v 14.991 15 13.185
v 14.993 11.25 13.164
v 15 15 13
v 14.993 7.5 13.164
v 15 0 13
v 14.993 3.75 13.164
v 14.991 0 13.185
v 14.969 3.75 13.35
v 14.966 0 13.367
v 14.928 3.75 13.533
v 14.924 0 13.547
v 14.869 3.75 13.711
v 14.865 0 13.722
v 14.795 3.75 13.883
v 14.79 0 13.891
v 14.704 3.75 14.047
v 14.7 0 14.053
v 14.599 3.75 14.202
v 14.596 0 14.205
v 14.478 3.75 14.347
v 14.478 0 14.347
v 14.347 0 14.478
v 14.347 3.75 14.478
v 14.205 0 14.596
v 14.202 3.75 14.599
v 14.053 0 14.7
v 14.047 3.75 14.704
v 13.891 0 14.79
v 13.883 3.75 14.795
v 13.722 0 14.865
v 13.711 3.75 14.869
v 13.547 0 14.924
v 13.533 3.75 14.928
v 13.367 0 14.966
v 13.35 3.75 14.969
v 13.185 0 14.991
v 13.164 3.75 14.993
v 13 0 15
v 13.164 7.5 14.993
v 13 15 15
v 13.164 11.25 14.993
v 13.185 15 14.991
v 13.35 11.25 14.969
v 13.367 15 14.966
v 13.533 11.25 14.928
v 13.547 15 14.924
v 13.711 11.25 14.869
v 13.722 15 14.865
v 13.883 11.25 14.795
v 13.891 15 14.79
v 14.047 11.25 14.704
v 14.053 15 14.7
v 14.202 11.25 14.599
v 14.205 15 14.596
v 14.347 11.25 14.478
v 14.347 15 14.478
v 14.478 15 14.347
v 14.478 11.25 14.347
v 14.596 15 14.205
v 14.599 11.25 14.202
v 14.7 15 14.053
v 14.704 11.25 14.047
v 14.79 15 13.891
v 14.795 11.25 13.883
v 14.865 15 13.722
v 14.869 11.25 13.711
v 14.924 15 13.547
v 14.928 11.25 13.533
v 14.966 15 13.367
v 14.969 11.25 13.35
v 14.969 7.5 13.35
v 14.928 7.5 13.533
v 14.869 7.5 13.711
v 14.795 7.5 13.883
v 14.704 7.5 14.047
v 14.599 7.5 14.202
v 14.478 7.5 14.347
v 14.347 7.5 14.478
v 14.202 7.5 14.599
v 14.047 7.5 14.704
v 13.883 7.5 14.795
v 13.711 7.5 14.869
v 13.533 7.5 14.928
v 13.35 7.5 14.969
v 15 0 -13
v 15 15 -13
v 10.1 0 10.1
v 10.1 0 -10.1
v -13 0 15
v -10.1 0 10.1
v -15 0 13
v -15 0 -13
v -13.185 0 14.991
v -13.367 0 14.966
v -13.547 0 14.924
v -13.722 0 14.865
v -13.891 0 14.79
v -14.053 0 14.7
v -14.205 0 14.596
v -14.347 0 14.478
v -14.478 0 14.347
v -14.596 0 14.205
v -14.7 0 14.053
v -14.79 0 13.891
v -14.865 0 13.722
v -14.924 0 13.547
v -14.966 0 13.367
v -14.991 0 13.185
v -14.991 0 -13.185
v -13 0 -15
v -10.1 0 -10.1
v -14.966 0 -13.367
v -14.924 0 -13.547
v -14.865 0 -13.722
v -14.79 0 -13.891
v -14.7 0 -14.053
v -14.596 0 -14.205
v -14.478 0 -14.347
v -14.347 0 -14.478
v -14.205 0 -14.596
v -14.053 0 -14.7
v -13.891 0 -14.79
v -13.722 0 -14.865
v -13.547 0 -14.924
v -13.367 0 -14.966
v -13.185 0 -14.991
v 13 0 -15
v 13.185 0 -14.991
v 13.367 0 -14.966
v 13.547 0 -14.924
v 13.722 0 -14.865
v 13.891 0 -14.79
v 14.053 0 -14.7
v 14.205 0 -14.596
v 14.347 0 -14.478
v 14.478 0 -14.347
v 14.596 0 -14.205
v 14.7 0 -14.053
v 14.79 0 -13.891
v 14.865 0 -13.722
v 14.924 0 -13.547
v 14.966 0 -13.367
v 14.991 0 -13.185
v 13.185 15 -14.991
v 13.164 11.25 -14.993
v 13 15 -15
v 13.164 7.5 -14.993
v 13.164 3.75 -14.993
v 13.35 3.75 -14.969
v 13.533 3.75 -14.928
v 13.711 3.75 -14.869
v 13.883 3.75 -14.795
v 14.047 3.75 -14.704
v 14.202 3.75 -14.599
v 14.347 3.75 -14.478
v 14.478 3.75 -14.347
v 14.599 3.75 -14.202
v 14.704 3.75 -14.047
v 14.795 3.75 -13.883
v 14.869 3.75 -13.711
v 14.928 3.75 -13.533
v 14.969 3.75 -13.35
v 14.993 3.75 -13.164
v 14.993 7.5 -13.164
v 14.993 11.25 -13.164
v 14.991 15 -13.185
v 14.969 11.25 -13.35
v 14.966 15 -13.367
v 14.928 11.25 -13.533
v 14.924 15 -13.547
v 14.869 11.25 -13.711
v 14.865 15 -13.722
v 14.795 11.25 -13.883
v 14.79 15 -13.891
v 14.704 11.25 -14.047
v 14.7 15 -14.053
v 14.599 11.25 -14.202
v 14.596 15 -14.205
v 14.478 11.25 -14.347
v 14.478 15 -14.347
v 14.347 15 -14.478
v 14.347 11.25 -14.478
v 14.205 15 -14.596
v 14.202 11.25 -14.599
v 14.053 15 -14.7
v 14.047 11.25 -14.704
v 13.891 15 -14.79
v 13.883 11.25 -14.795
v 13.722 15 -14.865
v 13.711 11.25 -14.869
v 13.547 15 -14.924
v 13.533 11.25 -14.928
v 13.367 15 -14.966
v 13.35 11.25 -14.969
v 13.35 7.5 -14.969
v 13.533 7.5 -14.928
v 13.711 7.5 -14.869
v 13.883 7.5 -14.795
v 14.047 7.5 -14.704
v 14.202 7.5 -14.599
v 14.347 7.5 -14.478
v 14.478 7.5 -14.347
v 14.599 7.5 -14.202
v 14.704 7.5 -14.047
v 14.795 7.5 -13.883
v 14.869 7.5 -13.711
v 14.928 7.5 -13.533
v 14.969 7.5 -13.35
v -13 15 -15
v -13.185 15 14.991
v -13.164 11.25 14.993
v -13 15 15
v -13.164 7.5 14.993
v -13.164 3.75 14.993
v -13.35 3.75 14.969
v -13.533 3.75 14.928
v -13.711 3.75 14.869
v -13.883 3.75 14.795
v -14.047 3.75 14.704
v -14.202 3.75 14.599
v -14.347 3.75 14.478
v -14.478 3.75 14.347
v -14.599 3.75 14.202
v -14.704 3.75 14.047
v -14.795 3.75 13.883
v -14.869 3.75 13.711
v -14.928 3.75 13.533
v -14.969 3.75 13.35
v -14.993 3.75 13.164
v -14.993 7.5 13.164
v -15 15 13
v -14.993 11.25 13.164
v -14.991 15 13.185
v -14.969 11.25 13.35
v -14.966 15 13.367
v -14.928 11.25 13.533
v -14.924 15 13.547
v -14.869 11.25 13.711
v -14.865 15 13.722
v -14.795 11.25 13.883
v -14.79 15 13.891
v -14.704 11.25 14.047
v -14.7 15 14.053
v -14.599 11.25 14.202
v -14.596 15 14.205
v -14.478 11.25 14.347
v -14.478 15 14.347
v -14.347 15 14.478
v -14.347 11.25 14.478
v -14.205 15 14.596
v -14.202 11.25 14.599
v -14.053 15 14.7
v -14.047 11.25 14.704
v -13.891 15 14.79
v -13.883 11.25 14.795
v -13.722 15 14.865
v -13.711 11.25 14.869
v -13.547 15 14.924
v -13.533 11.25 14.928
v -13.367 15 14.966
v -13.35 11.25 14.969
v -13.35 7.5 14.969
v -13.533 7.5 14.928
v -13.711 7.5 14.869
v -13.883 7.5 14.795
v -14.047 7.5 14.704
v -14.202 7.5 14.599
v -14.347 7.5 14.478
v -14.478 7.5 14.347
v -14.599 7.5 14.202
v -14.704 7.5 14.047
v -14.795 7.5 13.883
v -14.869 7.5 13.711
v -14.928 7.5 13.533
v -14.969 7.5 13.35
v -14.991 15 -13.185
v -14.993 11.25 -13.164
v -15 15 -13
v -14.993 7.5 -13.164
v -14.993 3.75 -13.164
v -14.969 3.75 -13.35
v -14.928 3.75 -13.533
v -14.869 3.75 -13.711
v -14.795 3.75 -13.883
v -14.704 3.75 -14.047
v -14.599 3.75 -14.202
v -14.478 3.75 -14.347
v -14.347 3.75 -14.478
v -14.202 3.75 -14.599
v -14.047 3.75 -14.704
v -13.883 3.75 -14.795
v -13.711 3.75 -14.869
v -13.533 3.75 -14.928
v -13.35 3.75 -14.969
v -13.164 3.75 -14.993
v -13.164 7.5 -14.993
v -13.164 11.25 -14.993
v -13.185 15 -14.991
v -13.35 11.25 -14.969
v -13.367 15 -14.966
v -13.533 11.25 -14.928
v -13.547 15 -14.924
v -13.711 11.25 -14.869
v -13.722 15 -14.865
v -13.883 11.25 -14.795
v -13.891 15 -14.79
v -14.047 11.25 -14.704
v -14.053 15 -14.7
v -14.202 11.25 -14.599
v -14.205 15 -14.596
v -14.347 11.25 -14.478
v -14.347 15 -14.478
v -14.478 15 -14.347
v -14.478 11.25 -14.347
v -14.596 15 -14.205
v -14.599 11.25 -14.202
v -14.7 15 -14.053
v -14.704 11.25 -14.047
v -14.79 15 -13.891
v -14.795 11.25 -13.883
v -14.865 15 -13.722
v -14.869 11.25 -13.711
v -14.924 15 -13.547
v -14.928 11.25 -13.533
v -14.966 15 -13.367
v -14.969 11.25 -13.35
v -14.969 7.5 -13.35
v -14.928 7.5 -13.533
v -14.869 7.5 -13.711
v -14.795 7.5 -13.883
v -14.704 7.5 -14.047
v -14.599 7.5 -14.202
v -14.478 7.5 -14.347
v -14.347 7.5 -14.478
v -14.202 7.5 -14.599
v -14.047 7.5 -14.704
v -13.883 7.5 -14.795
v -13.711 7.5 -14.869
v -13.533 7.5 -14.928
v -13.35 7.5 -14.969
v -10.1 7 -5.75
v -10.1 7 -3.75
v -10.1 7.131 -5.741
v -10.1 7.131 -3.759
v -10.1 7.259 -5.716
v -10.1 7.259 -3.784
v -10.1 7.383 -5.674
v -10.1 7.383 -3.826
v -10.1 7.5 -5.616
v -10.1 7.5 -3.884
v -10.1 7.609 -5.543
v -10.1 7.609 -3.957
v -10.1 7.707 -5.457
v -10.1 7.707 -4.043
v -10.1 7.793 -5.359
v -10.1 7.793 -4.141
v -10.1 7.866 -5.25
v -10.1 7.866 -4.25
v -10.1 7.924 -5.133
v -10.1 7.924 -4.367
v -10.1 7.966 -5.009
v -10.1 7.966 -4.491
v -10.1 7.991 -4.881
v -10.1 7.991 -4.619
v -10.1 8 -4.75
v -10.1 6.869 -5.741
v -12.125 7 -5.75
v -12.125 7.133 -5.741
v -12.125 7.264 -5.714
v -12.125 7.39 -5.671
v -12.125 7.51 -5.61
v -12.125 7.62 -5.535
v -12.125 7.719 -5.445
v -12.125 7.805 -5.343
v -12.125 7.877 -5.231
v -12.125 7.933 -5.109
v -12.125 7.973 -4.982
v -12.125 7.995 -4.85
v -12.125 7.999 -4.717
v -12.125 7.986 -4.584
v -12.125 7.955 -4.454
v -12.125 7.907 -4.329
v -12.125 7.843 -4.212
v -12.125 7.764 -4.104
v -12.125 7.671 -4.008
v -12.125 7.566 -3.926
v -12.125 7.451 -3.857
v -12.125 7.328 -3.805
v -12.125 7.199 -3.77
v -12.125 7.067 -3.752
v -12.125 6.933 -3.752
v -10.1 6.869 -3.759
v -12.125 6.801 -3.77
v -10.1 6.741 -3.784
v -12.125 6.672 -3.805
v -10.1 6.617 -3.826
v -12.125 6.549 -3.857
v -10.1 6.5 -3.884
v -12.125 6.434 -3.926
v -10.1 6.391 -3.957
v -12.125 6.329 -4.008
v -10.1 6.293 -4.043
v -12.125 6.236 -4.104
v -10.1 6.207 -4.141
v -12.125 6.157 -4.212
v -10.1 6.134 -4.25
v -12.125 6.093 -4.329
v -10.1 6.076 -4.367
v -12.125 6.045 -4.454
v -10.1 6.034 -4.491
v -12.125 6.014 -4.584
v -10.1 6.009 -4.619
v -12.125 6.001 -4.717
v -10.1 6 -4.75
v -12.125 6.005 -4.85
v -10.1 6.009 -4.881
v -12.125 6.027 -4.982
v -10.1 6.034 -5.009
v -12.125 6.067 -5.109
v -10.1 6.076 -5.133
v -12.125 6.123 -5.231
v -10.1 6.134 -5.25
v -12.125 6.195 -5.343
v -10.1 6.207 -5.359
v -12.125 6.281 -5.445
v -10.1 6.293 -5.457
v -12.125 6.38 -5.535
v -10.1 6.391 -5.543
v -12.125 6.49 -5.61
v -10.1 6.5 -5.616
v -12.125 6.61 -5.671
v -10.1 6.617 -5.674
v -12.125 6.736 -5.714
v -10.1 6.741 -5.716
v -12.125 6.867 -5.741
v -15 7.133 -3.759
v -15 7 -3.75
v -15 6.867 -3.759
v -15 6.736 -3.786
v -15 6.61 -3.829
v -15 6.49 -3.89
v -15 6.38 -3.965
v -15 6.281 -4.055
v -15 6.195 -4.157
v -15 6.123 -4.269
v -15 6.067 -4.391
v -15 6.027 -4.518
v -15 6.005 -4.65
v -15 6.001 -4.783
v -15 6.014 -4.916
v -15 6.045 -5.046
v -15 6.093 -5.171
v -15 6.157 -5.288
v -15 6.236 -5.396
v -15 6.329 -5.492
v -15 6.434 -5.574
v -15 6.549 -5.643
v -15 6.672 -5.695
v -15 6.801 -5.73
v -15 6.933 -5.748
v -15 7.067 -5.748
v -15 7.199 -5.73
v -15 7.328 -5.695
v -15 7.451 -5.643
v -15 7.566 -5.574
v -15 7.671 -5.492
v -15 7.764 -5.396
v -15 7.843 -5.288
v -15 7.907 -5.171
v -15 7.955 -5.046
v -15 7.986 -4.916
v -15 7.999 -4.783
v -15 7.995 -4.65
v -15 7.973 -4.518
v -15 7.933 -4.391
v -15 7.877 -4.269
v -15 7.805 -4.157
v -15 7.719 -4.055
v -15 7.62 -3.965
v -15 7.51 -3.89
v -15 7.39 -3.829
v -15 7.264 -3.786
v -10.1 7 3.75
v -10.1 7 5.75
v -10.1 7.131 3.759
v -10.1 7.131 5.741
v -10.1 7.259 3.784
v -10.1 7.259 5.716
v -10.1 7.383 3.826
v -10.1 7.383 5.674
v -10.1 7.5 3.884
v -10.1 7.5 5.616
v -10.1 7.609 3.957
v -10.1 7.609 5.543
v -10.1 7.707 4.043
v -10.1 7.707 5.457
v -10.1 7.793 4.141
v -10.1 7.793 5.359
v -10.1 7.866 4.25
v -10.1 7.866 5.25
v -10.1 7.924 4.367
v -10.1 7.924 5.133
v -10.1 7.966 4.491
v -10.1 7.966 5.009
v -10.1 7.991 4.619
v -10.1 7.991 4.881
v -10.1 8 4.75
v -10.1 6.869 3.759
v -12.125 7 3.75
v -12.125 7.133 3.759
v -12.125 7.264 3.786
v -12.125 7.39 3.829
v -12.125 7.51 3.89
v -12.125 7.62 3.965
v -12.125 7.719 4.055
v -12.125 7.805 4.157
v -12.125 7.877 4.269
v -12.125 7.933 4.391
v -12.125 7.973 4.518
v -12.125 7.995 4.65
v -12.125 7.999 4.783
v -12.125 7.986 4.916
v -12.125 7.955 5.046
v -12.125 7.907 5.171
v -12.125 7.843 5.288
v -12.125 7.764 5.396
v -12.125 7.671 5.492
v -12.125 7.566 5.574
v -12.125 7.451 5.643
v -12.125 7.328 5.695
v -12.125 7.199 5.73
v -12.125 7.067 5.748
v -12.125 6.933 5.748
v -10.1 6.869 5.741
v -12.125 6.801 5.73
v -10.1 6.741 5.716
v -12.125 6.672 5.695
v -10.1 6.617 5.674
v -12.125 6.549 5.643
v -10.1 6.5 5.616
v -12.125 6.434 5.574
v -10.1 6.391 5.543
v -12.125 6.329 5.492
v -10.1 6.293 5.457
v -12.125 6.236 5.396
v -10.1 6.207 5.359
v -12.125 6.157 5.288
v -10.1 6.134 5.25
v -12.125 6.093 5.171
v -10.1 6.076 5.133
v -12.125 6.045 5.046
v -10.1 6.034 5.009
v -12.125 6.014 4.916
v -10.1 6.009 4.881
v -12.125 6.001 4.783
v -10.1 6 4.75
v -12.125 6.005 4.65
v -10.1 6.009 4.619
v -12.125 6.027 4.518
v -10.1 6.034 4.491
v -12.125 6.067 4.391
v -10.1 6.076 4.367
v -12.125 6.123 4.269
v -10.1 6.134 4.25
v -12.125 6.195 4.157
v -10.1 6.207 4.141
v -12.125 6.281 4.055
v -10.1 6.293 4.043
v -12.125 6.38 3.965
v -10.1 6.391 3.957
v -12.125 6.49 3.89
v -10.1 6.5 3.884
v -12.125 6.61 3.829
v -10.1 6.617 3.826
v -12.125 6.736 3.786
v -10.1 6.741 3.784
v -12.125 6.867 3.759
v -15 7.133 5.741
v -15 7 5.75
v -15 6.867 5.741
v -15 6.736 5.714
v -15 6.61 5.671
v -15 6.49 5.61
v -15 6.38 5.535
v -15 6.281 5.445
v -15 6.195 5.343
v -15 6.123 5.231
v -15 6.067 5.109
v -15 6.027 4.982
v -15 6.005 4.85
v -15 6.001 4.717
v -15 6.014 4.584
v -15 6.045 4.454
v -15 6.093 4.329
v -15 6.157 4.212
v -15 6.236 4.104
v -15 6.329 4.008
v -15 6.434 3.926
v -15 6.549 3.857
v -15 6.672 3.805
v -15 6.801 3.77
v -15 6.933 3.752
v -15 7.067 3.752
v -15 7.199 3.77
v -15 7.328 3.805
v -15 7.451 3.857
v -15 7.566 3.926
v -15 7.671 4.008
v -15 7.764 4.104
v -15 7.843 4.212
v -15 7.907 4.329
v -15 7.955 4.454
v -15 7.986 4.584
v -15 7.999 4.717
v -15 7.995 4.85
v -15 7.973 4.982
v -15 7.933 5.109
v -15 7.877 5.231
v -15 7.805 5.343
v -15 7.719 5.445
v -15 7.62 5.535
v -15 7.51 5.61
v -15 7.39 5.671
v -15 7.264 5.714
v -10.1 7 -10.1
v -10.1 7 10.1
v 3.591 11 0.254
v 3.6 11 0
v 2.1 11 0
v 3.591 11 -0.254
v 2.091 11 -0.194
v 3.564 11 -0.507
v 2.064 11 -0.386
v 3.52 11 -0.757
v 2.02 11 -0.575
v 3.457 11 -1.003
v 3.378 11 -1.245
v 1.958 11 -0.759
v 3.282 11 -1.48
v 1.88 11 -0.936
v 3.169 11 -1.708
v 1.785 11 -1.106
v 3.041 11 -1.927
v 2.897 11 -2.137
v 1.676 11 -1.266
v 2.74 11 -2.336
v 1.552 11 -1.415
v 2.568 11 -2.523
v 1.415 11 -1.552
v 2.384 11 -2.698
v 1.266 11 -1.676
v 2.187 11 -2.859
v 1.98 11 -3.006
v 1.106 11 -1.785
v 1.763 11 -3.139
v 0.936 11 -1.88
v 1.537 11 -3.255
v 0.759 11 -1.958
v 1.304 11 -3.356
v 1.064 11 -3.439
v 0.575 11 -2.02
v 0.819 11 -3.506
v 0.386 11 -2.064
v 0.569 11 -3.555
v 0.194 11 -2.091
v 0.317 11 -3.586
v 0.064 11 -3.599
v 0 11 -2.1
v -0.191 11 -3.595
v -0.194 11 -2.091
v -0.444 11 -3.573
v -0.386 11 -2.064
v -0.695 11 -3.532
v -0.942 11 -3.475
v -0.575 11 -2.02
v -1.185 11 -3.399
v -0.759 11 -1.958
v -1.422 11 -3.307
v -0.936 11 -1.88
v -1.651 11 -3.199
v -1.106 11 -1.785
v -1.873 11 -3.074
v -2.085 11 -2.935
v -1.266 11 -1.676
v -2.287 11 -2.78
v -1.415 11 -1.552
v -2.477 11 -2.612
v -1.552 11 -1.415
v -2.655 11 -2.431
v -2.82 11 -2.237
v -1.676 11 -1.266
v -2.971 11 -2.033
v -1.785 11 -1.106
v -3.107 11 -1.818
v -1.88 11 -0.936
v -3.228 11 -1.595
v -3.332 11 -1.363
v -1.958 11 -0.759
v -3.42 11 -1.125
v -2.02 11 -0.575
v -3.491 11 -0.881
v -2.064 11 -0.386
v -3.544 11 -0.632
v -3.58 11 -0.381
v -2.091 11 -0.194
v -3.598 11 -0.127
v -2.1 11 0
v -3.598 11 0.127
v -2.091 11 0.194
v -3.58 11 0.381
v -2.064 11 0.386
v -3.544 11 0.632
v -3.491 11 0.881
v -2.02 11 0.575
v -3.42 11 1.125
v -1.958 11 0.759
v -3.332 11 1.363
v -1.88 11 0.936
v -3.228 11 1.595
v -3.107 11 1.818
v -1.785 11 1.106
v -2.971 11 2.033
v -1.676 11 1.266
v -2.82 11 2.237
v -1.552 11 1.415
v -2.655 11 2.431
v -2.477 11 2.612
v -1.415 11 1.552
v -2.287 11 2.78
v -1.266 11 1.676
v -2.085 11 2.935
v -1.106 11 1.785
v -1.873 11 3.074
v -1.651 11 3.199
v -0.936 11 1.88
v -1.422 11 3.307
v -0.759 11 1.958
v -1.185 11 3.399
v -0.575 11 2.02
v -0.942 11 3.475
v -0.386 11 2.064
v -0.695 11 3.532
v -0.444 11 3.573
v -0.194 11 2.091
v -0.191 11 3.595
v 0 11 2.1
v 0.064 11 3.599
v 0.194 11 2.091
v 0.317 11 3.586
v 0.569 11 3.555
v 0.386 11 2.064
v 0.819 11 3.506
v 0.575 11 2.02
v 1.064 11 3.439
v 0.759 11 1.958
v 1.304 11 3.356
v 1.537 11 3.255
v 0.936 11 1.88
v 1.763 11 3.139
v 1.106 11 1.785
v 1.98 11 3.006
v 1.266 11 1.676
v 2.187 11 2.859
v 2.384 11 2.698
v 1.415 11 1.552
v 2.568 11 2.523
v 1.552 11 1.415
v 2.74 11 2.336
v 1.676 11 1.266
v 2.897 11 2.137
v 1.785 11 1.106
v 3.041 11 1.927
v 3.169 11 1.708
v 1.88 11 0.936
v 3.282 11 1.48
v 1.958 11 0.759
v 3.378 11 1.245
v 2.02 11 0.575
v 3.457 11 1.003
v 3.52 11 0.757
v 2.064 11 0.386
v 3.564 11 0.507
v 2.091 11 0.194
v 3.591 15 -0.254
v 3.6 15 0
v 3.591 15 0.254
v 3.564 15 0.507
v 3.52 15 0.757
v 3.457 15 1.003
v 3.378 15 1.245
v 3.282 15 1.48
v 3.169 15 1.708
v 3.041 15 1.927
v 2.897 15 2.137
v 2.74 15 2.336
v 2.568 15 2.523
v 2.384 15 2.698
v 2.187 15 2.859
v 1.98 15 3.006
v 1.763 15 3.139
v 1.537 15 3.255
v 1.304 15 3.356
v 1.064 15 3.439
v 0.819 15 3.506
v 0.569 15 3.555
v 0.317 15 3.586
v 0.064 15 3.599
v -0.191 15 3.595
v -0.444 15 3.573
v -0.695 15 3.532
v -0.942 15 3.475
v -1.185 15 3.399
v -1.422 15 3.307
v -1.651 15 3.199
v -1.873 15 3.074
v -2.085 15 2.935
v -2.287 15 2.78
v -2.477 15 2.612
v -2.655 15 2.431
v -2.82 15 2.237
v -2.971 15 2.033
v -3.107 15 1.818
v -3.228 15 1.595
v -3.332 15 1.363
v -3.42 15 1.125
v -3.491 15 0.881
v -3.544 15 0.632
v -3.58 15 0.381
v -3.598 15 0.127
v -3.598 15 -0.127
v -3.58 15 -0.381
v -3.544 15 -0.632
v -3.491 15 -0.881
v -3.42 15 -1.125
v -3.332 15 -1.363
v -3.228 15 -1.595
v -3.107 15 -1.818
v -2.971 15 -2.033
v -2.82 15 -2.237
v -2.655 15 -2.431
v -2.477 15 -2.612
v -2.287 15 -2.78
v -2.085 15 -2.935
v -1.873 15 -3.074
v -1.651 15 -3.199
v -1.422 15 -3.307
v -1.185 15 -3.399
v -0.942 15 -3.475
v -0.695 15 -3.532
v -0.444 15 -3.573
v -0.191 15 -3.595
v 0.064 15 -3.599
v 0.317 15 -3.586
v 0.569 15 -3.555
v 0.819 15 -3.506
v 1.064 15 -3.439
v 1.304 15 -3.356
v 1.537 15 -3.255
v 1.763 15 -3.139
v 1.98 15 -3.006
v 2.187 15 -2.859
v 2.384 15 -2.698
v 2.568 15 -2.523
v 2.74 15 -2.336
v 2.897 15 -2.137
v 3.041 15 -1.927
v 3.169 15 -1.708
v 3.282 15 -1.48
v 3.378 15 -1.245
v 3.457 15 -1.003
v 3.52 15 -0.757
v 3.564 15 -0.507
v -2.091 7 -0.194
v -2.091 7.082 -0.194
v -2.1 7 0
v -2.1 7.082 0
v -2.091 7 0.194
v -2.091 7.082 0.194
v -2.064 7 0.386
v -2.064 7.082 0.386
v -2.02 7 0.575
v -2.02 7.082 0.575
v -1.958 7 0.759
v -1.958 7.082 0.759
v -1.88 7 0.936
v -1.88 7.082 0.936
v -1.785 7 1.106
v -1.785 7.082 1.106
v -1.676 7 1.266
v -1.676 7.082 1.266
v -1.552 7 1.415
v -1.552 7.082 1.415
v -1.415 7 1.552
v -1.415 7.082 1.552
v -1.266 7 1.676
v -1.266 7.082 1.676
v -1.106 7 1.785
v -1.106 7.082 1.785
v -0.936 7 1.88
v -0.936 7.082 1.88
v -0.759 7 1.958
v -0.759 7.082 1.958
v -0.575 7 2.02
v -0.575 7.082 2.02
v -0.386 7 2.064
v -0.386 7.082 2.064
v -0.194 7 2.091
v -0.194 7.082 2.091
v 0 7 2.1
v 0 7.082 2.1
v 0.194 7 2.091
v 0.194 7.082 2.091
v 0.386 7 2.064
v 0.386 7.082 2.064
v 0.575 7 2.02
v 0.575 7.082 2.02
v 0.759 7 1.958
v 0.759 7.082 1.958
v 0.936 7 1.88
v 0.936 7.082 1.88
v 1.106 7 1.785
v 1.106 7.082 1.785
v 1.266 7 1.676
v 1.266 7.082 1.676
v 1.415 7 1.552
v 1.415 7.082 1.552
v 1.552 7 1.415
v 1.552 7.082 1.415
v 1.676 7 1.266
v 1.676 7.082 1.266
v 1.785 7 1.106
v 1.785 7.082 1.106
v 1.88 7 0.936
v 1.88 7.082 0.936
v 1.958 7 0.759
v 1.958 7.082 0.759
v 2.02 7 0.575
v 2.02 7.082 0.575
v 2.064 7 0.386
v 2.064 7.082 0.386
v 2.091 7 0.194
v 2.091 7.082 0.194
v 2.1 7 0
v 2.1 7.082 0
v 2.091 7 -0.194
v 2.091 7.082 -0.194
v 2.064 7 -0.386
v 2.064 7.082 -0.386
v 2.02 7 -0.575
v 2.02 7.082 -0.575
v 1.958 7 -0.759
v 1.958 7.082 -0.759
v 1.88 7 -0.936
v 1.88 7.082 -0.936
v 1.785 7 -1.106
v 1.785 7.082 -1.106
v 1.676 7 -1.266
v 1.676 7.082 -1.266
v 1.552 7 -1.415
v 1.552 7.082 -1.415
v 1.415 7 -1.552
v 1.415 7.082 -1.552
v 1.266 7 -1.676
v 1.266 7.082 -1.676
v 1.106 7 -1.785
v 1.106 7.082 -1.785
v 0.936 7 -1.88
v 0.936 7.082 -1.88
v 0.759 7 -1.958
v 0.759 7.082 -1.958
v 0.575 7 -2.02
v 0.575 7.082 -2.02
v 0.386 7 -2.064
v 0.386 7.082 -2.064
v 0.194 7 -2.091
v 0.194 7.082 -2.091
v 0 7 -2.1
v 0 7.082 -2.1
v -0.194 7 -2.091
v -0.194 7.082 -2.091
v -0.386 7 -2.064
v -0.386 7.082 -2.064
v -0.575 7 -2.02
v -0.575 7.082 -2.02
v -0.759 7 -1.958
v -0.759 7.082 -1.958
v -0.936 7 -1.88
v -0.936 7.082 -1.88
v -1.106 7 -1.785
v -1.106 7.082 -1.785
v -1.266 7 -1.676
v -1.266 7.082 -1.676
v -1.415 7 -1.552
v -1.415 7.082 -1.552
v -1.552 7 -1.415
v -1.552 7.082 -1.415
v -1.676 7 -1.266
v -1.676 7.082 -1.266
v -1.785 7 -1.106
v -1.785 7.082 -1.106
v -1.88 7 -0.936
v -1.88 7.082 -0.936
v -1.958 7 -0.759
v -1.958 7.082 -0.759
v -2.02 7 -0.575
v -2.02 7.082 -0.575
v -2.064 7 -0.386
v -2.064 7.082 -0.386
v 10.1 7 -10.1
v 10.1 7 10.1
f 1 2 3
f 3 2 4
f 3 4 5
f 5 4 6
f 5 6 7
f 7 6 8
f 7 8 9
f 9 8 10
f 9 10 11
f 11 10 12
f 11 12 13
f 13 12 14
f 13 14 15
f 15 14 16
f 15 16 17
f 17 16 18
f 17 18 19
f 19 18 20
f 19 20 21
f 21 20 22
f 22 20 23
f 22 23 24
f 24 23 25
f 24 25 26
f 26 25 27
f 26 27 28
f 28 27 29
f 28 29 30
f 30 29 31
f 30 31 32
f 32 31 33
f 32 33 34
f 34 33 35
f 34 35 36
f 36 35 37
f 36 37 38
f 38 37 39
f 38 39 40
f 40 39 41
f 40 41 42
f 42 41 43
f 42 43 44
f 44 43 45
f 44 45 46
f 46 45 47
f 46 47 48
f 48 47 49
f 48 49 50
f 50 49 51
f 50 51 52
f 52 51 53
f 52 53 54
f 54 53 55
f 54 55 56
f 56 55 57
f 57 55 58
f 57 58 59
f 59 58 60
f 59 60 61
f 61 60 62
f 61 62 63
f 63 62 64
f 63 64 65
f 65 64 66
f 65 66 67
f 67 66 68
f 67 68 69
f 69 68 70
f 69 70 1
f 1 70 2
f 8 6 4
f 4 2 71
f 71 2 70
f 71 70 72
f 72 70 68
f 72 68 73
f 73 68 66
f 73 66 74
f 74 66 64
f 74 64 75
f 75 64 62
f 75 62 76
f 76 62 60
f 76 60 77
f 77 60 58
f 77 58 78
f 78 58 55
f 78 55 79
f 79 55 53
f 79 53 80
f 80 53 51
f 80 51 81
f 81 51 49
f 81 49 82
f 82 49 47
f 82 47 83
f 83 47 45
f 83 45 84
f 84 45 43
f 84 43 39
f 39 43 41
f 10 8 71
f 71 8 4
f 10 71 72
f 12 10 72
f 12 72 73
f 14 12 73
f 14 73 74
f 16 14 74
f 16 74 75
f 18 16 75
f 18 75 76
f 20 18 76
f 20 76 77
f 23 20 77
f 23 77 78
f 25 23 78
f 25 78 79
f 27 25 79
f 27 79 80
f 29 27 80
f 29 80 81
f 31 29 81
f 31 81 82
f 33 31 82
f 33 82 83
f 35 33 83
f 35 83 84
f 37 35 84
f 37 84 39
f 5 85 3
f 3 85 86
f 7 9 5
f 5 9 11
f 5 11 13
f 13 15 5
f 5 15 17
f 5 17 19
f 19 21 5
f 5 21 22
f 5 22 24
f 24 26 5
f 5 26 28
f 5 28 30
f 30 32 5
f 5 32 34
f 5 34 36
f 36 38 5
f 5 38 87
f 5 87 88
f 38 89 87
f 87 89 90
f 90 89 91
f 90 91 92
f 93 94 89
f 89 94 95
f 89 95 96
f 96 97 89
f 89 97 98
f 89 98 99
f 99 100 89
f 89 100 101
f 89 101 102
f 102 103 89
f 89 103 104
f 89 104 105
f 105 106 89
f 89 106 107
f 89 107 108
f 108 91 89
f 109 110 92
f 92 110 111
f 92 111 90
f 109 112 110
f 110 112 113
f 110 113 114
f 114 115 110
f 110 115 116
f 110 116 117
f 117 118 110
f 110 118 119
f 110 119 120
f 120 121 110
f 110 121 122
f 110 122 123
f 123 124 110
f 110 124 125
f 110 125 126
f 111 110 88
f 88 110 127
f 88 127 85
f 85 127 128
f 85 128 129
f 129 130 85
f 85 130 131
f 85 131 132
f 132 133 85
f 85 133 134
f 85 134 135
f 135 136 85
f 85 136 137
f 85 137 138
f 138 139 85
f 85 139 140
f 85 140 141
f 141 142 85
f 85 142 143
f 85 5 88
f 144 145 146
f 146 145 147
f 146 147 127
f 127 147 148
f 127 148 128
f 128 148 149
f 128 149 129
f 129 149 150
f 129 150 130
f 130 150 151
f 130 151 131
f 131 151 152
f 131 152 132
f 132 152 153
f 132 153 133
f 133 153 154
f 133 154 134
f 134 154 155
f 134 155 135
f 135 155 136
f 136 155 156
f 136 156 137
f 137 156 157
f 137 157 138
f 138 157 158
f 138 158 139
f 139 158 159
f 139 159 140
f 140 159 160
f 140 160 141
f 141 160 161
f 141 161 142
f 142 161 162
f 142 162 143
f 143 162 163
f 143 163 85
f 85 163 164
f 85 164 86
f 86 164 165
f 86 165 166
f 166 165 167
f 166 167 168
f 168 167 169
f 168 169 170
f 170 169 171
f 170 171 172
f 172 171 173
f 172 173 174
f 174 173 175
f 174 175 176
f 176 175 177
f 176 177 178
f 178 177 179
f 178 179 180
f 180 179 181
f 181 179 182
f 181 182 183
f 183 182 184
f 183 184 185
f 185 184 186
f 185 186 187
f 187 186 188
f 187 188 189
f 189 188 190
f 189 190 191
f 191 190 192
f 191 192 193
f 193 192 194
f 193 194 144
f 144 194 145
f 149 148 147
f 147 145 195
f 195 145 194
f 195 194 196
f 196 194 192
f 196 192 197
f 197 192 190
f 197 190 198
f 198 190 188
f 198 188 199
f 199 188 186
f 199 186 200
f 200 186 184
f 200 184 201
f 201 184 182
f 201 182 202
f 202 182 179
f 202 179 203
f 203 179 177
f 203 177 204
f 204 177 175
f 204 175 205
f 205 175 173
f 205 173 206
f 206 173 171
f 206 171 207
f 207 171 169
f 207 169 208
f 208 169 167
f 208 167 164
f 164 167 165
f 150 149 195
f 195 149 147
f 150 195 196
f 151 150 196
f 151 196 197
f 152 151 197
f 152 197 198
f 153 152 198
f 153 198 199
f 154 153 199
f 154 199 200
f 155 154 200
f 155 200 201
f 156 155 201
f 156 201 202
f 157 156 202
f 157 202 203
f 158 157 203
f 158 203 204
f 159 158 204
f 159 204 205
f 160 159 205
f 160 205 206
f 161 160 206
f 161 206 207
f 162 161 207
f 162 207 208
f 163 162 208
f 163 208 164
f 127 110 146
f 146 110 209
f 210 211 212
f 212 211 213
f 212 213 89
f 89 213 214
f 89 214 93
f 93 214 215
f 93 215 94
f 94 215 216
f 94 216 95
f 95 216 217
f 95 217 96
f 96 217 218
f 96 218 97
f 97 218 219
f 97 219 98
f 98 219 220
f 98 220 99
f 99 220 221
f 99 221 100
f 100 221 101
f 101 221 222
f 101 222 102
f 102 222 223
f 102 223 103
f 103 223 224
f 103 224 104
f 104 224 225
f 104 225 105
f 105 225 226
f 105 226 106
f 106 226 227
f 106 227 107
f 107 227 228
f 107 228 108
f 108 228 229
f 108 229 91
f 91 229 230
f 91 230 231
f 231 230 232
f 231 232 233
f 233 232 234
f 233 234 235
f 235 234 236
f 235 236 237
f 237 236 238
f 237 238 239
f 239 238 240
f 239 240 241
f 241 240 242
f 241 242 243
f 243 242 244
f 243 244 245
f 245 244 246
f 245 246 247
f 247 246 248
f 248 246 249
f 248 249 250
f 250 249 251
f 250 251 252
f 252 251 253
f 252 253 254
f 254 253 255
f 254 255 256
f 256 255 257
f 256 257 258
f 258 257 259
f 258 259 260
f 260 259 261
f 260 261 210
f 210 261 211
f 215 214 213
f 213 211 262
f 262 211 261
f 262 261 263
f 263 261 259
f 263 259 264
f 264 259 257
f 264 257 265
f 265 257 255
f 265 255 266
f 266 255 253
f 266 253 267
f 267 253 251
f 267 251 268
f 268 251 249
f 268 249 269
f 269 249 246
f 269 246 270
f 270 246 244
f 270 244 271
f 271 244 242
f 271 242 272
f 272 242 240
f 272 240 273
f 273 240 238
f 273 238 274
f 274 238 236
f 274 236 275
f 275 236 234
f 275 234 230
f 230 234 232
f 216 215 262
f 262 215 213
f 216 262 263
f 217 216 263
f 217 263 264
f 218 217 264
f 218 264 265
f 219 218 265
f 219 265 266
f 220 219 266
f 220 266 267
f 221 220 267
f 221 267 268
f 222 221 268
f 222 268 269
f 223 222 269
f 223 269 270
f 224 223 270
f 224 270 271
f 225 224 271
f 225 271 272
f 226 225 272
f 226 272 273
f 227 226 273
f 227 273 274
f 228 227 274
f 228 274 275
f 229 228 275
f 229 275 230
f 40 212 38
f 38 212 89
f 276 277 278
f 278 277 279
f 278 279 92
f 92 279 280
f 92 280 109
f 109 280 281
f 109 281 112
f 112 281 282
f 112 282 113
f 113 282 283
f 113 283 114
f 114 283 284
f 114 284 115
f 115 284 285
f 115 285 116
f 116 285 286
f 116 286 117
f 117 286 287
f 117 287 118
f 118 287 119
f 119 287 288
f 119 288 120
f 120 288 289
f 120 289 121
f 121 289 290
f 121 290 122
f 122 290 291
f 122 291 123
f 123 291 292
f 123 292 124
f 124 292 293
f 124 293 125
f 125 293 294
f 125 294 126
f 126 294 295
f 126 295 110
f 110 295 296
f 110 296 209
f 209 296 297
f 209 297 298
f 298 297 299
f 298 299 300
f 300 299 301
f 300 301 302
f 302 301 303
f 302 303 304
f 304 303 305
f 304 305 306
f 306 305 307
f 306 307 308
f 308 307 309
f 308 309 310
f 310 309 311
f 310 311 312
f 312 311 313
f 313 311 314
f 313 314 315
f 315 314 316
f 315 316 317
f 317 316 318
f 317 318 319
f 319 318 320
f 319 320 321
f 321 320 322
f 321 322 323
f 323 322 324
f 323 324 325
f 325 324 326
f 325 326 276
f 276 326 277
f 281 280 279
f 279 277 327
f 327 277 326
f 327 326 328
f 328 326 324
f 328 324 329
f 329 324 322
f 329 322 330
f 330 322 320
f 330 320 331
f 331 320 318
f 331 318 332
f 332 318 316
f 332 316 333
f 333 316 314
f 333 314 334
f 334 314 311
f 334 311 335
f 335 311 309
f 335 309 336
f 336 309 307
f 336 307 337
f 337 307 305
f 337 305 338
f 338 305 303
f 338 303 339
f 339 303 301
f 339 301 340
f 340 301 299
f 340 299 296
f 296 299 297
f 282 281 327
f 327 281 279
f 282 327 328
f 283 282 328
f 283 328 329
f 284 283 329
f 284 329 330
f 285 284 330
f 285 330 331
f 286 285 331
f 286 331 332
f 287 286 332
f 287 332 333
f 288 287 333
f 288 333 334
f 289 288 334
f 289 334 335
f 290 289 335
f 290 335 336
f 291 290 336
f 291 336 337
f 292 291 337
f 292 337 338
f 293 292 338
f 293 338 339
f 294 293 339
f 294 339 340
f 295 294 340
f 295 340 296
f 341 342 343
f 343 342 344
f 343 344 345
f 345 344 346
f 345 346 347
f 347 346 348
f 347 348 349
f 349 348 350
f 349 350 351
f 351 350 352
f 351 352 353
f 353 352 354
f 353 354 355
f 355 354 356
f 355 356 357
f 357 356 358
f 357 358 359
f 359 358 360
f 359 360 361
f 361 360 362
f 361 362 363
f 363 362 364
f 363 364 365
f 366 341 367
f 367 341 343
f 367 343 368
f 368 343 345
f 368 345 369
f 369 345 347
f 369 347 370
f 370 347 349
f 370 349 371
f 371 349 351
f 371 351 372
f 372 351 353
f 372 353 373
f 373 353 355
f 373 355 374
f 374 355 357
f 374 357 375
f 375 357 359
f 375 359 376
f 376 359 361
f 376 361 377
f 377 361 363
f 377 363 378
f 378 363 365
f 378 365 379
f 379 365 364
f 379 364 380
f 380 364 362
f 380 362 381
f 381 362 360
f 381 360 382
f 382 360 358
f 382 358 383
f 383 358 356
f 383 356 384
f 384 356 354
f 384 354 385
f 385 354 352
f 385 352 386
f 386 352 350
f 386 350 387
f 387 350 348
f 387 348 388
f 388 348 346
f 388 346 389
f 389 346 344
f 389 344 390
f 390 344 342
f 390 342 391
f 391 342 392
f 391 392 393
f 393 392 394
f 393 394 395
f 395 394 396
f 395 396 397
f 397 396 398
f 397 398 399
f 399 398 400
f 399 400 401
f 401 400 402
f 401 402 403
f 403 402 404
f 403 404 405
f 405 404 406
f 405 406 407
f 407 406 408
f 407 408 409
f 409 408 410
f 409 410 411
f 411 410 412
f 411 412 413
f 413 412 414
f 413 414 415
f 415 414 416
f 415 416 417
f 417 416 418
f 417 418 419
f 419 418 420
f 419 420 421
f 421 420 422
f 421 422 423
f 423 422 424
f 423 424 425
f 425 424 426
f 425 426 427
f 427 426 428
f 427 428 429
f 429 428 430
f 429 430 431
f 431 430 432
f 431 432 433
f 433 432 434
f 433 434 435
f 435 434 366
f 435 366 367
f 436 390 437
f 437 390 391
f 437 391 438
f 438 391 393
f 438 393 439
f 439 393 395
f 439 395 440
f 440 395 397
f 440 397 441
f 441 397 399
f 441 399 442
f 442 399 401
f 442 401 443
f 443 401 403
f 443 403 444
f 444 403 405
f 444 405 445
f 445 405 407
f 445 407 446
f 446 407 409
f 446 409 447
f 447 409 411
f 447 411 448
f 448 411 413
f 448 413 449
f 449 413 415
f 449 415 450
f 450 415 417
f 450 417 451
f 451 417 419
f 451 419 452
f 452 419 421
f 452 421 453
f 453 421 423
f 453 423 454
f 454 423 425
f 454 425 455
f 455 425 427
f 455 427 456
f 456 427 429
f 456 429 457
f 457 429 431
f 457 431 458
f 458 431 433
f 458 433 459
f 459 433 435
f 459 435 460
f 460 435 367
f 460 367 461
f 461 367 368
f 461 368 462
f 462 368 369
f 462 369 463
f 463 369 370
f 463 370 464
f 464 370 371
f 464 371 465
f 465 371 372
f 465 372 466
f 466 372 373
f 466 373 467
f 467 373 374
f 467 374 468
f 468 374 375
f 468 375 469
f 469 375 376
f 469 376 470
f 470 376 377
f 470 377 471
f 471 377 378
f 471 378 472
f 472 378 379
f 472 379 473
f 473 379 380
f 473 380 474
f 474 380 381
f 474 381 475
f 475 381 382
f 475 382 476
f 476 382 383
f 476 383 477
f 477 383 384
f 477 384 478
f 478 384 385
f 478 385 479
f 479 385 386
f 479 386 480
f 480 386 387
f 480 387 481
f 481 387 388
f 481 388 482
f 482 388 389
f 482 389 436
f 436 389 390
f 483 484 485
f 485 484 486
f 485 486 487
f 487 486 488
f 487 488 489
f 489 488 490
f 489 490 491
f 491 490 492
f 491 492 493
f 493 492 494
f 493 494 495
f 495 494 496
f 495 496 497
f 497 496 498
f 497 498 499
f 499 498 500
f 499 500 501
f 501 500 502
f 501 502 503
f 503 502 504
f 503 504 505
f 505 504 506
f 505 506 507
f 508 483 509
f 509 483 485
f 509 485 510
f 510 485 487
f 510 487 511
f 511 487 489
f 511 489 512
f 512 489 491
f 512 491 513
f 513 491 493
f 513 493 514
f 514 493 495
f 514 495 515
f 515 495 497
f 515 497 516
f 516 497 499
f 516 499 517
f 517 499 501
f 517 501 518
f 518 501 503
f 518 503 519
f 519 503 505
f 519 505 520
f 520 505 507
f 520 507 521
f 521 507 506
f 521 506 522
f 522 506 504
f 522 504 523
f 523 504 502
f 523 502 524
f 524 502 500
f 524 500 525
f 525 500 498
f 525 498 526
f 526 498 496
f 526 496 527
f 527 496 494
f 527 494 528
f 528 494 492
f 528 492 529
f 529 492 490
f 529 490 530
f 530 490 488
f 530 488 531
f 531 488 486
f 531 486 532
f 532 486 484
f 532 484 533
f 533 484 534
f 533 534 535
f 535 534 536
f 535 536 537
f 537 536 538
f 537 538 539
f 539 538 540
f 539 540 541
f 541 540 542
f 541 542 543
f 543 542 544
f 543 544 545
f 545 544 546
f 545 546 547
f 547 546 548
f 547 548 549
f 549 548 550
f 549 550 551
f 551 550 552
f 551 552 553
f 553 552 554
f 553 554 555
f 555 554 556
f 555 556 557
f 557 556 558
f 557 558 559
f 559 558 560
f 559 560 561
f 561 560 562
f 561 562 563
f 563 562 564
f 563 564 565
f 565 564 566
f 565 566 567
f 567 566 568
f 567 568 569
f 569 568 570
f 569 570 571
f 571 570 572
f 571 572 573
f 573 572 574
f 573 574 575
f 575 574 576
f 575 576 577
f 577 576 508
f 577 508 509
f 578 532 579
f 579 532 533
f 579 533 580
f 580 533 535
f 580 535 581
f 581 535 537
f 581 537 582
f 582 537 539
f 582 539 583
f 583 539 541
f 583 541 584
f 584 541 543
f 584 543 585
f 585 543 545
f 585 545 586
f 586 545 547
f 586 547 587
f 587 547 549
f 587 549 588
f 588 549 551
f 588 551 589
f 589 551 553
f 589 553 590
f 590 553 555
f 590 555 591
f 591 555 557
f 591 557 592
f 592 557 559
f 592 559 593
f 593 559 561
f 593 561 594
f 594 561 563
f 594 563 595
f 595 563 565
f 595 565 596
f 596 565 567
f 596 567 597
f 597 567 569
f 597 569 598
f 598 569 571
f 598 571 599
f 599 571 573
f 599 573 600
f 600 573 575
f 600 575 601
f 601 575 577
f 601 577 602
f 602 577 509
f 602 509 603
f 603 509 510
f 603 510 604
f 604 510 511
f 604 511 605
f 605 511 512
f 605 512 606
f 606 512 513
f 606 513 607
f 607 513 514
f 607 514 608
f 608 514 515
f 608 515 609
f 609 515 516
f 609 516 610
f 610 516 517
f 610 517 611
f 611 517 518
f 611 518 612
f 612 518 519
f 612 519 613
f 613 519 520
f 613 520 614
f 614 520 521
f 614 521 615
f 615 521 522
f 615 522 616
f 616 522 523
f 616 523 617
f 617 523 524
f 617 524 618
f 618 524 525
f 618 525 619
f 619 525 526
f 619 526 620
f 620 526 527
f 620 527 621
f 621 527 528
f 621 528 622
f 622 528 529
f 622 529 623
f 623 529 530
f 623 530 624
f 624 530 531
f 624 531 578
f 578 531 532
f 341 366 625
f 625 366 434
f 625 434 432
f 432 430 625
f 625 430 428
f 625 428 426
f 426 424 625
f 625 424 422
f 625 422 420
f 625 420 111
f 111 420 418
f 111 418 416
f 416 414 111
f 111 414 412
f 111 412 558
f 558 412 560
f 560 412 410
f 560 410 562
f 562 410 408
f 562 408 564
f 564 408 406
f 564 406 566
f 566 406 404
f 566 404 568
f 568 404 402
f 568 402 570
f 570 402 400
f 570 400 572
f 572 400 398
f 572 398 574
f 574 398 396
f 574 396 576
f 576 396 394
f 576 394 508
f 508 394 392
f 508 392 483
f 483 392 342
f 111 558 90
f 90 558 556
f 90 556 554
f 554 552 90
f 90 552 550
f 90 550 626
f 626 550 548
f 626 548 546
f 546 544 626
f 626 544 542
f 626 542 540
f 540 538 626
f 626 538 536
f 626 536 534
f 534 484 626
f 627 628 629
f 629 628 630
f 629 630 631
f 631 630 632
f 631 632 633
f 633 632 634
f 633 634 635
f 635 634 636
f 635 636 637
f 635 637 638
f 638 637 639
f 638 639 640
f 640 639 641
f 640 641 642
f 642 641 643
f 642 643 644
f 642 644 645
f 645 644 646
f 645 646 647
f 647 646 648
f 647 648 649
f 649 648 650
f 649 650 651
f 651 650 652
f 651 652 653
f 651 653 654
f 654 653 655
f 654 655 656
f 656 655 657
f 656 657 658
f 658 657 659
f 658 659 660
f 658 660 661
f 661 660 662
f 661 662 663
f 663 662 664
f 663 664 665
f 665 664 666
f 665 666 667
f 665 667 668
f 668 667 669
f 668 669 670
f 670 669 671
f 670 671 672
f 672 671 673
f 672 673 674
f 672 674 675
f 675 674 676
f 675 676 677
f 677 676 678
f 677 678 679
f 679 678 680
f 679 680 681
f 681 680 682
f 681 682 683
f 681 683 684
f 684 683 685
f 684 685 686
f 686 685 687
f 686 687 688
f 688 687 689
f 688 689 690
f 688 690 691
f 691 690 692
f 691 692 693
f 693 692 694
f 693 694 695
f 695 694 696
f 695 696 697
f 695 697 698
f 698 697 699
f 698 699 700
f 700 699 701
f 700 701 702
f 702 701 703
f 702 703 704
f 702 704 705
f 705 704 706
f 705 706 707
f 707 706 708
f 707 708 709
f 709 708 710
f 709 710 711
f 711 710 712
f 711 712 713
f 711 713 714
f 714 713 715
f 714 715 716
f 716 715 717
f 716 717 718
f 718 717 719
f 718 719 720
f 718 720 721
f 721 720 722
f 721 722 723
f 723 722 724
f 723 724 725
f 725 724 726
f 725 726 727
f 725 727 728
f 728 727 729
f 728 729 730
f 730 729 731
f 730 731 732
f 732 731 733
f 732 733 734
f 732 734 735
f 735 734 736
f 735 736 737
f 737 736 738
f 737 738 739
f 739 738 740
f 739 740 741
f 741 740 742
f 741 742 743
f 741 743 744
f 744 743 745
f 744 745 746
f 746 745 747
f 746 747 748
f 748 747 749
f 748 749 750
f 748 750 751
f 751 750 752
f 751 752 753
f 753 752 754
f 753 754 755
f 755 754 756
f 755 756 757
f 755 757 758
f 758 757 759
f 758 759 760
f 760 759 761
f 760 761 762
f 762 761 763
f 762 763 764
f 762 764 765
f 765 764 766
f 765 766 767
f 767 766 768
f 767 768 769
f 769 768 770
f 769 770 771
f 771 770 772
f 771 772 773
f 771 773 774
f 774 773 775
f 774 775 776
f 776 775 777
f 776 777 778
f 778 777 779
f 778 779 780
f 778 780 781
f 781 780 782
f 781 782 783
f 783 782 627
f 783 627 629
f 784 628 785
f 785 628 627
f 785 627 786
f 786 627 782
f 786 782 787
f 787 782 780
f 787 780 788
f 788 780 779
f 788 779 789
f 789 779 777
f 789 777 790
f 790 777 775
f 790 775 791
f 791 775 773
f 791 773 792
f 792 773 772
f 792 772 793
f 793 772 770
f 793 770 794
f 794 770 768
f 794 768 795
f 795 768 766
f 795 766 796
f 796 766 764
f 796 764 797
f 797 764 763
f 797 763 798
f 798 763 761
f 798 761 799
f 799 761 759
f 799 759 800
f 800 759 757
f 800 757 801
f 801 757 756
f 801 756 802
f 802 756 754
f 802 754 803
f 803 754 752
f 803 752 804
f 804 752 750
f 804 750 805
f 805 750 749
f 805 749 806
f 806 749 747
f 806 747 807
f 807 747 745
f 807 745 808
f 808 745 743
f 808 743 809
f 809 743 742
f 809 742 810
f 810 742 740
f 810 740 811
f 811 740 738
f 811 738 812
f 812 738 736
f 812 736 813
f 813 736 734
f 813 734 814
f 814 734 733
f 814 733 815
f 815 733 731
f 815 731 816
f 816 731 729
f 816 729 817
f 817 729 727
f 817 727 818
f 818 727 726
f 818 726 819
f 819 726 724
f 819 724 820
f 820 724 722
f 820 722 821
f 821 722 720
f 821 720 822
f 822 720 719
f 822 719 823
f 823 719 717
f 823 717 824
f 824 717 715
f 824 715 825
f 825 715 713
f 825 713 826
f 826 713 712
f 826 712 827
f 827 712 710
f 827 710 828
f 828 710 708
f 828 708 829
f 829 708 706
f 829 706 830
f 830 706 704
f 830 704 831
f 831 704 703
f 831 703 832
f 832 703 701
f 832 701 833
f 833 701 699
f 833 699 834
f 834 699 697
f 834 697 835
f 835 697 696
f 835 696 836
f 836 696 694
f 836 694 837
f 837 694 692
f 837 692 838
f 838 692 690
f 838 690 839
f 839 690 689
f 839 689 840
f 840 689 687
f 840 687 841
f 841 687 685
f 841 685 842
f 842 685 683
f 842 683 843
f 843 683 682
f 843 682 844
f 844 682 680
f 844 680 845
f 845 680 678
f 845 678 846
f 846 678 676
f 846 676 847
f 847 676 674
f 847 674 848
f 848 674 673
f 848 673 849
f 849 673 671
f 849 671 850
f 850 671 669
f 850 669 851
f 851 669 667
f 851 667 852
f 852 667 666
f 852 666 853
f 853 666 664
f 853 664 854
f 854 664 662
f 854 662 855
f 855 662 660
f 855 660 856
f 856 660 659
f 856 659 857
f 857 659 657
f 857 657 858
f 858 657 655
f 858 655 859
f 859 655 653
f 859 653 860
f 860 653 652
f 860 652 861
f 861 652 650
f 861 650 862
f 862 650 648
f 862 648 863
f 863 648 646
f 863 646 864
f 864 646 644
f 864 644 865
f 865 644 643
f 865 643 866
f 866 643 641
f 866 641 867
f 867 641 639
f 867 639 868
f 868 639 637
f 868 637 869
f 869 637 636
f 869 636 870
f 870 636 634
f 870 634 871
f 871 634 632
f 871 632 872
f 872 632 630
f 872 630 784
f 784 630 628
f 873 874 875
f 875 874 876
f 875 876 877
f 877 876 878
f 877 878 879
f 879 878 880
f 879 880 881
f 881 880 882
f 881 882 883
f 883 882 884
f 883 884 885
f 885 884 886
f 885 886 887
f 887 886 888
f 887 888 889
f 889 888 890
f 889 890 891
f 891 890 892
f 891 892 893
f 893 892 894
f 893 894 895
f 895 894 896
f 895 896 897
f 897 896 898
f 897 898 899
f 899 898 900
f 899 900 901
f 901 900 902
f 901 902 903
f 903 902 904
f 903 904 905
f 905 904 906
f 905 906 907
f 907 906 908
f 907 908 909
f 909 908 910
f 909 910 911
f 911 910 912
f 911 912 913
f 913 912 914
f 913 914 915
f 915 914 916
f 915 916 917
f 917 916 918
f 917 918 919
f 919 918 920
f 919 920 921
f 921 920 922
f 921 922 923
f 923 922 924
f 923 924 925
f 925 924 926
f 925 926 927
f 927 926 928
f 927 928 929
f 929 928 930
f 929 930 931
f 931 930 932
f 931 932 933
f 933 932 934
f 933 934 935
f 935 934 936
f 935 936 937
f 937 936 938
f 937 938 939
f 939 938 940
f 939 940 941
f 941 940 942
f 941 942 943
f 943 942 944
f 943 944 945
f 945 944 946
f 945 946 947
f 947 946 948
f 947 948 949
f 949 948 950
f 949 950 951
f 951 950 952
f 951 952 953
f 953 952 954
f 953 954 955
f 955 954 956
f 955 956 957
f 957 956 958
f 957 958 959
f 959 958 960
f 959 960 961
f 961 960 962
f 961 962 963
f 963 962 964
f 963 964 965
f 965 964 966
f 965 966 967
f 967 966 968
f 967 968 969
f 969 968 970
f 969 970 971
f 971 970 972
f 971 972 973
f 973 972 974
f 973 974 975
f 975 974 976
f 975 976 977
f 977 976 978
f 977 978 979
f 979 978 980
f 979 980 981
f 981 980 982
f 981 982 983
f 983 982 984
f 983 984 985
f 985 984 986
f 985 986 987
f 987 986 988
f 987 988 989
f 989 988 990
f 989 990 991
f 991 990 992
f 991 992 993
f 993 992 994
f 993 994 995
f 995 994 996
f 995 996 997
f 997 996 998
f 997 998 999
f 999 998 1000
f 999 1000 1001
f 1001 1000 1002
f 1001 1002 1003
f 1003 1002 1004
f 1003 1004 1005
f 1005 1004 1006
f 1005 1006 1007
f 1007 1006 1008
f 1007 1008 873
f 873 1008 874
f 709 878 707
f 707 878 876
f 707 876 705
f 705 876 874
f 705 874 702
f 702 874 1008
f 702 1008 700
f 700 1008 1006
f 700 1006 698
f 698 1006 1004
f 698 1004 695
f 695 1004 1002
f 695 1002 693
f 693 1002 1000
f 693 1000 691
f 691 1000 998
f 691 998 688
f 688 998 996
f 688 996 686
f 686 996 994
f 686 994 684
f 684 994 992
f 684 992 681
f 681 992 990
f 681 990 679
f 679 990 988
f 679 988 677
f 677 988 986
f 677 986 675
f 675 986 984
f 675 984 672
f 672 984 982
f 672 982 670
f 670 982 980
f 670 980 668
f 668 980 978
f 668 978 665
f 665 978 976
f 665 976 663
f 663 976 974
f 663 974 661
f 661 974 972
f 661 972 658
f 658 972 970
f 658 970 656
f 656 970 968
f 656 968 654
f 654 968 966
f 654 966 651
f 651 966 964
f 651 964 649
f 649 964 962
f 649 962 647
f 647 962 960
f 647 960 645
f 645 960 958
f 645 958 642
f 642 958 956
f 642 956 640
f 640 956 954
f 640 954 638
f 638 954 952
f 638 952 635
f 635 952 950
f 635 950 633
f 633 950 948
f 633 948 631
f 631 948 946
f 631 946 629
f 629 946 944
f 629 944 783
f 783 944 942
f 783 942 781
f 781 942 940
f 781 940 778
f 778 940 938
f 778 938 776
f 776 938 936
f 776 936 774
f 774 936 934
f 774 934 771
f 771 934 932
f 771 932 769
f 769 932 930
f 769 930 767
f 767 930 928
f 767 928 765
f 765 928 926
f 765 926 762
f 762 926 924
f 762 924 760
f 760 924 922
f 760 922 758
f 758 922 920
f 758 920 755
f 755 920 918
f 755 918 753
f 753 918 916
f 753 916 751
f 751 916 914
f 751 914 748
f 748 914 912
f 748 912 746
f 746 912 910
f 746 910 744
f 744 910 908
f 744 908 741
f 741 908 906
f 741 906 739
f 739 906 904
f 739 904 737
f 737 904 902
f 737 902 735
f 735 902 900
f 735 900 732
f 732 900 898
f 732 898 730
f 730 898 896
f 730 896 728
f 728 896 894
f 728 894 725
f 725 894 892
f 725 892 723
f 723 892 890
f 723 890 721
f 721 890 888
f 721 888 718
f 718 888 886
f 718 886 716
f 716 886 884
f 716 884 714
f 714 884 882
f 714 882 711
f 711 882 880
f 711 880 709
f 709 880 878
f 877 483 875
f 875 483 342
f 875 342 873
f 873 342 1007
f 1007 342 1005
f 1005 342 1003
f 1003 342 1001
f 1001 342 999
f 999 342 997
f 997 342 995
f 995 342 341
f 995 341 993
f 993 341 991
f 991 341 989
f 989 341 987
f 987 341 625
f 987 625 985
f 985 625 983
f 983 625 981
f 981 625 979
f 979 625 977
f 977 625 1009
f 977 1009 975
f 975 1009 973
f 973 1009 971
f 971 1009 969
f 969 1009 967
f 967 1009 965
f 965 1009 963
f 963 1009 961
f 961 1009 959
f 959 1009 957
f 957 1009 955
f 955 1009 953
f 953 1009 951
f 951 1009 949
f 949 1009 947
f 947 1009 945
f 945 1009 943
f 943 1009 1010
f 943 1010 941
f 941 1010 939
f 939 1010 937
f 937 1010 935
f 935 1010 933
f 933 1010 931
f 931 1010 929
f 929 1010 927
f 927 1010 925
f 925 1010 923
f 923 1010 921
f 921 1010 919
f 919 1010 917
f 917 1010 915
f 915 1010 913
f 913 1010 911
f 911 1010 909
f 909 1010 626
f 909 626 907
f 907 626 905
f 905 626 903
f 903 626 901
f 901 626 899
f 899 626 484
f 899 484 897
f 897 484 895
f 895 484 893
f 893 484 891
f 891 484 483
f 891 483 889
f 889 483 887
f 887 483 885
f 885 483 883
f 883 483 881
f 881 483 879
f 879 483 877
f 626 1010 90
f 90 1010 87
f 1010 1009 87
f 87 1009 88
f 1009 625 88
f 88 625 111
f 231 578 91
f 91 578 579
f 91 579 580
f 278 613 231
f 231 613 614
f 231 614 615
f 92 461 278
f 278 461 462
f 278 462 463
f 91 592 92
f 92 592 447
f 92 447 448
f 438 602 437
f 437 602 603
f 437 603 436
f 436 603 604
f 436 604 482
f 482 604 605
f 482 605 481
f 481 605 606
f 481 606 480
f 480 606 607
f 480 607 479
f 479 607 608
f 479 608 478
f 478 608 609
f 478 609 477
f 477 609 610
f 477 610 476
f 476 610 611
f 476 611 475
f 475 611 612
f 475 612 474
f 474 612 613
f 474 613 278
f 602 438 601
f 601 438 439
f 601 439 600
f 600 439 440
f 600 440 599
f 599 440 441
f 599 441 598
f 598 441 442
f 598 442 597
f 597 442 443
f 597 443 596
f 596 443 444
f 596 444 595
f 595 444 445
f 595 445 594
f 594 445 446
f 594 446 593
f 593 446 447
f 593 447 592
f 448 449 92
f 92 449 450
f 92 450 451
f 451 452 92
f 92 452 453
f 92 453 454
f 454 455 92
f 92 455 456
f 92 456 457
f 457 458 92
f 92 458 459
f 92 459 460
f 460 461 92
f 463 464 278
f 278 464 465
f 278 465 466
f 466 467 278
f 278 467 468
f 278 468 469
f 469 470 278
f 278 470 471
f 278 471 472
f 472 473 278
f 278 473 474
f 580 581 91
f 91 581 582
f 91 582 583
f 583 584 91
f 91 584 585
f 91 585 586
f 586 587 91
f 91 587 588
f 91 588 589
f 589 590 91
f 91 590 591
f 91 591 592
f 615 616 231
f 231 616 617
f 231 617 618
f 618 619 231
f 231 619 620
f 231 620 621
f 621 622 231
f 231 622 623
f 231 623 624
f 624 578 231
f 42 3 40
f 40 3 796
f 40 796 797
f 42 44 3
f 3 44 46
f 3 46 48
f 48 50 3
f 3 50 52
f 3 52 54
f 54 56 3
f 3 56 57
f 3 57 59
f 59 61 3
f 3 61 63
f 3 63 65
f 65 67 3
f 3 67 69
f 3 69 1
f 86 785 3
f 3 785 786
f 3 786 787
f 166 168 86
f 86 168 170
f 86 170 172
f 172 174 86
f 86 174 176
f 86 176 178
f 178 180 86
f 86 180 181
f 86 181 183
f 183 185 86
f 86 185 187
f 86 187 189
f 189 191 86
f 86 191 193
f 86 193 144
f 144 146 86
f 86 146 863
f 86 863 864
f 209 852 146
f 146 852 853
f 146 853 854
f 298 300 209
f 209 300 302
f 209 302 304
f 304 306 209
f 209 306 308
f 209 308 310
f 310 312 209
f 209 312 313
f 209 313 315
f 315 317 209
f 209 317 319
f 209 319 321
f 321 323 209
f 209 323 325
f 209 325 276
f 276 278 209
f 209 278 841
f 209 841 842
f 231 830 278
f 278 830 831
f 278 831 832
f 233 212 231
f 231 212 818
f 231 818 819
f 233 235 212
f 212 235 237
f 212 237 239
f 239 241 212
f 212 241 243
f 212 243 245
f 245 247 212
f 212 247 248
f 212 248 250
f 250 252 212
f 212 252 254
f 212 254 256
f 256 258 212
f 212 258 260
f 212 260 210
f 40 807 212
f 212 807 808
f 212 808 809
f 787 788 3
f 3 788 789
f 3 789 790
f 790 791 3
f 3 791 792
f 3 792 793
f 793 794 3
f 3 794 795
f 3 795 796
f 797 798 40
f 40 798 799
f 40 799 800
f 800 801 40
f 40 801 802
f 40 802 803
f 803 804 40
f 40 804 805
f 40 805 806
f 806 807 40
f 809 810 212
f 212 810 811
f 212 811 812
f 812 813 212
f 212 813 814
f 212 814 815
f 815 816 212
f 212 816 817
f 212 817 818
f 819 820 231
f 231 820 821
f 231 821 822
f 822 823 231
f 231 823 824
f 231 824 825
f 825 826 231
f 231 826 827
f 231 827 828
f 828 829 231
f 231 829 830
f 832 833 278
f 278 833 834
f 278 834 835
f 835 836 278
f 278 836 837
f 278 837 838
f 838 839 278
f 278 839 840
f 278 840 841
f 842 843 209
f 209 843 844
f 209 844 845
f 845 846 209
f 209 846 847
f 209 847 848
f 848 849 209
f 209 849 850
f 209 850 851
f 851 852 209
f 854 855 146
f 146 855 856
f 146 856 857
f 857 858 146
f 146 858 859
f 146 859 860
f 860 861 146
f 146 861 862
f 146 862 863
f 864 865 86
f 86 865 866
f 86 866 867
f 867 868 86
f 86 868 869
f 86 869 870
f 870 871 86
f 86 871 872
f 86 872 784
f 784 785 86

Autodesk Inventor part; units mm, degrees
ref_plane "YZ Plane" through (0, 0, 0) normal (1, 0, 0) x (0, 1, 0)
ref_plane "XZ Plane" through (0, 0, 0) normal (0, 1, 0) x (-1, 0, 0)
ref_plane "XY Plane" through (0, 0, 0) normal (0, 0, 1) x (1, 0, 0)
sketch "草圖2" plane through (0, 0, 0) normal (0, 1, 0) x (-1, 0, 0)
  line L0 (-15, 15) -> (15, 15)
  line L1 (15, 15) -> (15, -15)
  line L2 (15, -15) -> (-15, -15)
  line L3 (-15, -15) -> (-15, 15)
  line L4 (-15, 15) -> (15, -15) construction
  line L5 (15, 15) -> (-15, -15) construction
  line L6 (-10.1, 10.1) -> (10.1, 10.1)
  line L7 (10.1, 10.1) -> (10.1, -10.1)
  line L8 (10.1, -10.1) -> (-10.1, -10.1)
  line L9 (-10.1, -10.1) -> (-10.1, 10.1)
  line L10 (-10.1, 10.1) -> (10.1, -10.1) construction
  line L11 (10.1, 10.1) -> (-10.1, -10.1) construction
  point P0 (0, 0)
  dimension "d4" = 30
  dimension "d5" = 30
  dimension "d6" = 20.2
  dimension "d7" = 20.2
extrude "擠出2" add sketch "草圖2" along normal blind 15
sketch "草圖3" plane through (0, 15, 0) normal (0, 1, 0) x (1, 0, 0)
  line L0 (15, 15) -> (-15, 15) projected
  line L1 (-15, 15) -> (-15, -15) projected
  line L2 (-15, -15) -> (15, -15) projected
  line L3 (15, -15) -> (15, 15) projected
  line L4 (10.1, -10.1) -> (-10.1, -10.1) projected
  line L5 (-10.1, -10.1) -> (-10.1, 10.1) projected
  line L6 (-10.1, 10.1) -> (10.1, 10.1) projected
  line L7 (10.1, 10.1) -> (10.1, -10.1) projected
  point P0 (0, 0)
extrude "擠出3" add sketch "草圖3" against normal blind 8 contours L4 L5 L6 L7
sketch "草圖4" plane through (0, 15, 0) normal (0, 1, 0) x (1, 0, 0)
  circle A0 centre (0, 0) radius 2.1
  dimension "d12" = 4.2
hole "孔1" at (0, 15, 0) direction (0, -1, 0) diameter 4.2 end through all counterbore diameter 7.2 counterbore depth 4
sketch "草圖5" plane through (-15, 0, -15) normal (-1, 0, 0) x (0, 0, 1)
  line L0 (10.25, 7) -> (19.75, 7) construction
  line L1 (0, 0) -> (30, 0) construction
  line L2 (0, 15) -> (30, 15) construction
  point P0 (15, 0)
  point P1 (15, 7)
  point P2 (15, 0)
  dimension "d20" = 9.5
  dimension "d21" = 8
hole "孔2" at (-15, 7, -4.75) at (-15, 7, 4.75) direction (1, 0, 0) diameter 2 depth 4.9
fillet "圓角1" radius 2 4 edges at (-15, 7.5, -15) (-15, 7.5, 15) (15, 7.5, -15) (15, 7.5, 15)
sketch "草圖1" plane through (0, 0, 0) normal (0, 1, 0) x (-1, 0, 0)
  line L0 (-10, 10) -> (10, 10)
  line L1 (10, 10) -> (10, -10)
  line L2 (10, -10) -> (-10, -10)
  line L3 (-10, -10) -> (-10, 10)
  line L4 (-10, 10) -> (10, -10) construction
  line L5 (10, 10) -> (-10, -10) construction
  point P0 (0, 0)
  dimension "d2" = 20
  dimension "d3" = 20
equation "\"d6\" = d7"
properties part number "限位開關"
